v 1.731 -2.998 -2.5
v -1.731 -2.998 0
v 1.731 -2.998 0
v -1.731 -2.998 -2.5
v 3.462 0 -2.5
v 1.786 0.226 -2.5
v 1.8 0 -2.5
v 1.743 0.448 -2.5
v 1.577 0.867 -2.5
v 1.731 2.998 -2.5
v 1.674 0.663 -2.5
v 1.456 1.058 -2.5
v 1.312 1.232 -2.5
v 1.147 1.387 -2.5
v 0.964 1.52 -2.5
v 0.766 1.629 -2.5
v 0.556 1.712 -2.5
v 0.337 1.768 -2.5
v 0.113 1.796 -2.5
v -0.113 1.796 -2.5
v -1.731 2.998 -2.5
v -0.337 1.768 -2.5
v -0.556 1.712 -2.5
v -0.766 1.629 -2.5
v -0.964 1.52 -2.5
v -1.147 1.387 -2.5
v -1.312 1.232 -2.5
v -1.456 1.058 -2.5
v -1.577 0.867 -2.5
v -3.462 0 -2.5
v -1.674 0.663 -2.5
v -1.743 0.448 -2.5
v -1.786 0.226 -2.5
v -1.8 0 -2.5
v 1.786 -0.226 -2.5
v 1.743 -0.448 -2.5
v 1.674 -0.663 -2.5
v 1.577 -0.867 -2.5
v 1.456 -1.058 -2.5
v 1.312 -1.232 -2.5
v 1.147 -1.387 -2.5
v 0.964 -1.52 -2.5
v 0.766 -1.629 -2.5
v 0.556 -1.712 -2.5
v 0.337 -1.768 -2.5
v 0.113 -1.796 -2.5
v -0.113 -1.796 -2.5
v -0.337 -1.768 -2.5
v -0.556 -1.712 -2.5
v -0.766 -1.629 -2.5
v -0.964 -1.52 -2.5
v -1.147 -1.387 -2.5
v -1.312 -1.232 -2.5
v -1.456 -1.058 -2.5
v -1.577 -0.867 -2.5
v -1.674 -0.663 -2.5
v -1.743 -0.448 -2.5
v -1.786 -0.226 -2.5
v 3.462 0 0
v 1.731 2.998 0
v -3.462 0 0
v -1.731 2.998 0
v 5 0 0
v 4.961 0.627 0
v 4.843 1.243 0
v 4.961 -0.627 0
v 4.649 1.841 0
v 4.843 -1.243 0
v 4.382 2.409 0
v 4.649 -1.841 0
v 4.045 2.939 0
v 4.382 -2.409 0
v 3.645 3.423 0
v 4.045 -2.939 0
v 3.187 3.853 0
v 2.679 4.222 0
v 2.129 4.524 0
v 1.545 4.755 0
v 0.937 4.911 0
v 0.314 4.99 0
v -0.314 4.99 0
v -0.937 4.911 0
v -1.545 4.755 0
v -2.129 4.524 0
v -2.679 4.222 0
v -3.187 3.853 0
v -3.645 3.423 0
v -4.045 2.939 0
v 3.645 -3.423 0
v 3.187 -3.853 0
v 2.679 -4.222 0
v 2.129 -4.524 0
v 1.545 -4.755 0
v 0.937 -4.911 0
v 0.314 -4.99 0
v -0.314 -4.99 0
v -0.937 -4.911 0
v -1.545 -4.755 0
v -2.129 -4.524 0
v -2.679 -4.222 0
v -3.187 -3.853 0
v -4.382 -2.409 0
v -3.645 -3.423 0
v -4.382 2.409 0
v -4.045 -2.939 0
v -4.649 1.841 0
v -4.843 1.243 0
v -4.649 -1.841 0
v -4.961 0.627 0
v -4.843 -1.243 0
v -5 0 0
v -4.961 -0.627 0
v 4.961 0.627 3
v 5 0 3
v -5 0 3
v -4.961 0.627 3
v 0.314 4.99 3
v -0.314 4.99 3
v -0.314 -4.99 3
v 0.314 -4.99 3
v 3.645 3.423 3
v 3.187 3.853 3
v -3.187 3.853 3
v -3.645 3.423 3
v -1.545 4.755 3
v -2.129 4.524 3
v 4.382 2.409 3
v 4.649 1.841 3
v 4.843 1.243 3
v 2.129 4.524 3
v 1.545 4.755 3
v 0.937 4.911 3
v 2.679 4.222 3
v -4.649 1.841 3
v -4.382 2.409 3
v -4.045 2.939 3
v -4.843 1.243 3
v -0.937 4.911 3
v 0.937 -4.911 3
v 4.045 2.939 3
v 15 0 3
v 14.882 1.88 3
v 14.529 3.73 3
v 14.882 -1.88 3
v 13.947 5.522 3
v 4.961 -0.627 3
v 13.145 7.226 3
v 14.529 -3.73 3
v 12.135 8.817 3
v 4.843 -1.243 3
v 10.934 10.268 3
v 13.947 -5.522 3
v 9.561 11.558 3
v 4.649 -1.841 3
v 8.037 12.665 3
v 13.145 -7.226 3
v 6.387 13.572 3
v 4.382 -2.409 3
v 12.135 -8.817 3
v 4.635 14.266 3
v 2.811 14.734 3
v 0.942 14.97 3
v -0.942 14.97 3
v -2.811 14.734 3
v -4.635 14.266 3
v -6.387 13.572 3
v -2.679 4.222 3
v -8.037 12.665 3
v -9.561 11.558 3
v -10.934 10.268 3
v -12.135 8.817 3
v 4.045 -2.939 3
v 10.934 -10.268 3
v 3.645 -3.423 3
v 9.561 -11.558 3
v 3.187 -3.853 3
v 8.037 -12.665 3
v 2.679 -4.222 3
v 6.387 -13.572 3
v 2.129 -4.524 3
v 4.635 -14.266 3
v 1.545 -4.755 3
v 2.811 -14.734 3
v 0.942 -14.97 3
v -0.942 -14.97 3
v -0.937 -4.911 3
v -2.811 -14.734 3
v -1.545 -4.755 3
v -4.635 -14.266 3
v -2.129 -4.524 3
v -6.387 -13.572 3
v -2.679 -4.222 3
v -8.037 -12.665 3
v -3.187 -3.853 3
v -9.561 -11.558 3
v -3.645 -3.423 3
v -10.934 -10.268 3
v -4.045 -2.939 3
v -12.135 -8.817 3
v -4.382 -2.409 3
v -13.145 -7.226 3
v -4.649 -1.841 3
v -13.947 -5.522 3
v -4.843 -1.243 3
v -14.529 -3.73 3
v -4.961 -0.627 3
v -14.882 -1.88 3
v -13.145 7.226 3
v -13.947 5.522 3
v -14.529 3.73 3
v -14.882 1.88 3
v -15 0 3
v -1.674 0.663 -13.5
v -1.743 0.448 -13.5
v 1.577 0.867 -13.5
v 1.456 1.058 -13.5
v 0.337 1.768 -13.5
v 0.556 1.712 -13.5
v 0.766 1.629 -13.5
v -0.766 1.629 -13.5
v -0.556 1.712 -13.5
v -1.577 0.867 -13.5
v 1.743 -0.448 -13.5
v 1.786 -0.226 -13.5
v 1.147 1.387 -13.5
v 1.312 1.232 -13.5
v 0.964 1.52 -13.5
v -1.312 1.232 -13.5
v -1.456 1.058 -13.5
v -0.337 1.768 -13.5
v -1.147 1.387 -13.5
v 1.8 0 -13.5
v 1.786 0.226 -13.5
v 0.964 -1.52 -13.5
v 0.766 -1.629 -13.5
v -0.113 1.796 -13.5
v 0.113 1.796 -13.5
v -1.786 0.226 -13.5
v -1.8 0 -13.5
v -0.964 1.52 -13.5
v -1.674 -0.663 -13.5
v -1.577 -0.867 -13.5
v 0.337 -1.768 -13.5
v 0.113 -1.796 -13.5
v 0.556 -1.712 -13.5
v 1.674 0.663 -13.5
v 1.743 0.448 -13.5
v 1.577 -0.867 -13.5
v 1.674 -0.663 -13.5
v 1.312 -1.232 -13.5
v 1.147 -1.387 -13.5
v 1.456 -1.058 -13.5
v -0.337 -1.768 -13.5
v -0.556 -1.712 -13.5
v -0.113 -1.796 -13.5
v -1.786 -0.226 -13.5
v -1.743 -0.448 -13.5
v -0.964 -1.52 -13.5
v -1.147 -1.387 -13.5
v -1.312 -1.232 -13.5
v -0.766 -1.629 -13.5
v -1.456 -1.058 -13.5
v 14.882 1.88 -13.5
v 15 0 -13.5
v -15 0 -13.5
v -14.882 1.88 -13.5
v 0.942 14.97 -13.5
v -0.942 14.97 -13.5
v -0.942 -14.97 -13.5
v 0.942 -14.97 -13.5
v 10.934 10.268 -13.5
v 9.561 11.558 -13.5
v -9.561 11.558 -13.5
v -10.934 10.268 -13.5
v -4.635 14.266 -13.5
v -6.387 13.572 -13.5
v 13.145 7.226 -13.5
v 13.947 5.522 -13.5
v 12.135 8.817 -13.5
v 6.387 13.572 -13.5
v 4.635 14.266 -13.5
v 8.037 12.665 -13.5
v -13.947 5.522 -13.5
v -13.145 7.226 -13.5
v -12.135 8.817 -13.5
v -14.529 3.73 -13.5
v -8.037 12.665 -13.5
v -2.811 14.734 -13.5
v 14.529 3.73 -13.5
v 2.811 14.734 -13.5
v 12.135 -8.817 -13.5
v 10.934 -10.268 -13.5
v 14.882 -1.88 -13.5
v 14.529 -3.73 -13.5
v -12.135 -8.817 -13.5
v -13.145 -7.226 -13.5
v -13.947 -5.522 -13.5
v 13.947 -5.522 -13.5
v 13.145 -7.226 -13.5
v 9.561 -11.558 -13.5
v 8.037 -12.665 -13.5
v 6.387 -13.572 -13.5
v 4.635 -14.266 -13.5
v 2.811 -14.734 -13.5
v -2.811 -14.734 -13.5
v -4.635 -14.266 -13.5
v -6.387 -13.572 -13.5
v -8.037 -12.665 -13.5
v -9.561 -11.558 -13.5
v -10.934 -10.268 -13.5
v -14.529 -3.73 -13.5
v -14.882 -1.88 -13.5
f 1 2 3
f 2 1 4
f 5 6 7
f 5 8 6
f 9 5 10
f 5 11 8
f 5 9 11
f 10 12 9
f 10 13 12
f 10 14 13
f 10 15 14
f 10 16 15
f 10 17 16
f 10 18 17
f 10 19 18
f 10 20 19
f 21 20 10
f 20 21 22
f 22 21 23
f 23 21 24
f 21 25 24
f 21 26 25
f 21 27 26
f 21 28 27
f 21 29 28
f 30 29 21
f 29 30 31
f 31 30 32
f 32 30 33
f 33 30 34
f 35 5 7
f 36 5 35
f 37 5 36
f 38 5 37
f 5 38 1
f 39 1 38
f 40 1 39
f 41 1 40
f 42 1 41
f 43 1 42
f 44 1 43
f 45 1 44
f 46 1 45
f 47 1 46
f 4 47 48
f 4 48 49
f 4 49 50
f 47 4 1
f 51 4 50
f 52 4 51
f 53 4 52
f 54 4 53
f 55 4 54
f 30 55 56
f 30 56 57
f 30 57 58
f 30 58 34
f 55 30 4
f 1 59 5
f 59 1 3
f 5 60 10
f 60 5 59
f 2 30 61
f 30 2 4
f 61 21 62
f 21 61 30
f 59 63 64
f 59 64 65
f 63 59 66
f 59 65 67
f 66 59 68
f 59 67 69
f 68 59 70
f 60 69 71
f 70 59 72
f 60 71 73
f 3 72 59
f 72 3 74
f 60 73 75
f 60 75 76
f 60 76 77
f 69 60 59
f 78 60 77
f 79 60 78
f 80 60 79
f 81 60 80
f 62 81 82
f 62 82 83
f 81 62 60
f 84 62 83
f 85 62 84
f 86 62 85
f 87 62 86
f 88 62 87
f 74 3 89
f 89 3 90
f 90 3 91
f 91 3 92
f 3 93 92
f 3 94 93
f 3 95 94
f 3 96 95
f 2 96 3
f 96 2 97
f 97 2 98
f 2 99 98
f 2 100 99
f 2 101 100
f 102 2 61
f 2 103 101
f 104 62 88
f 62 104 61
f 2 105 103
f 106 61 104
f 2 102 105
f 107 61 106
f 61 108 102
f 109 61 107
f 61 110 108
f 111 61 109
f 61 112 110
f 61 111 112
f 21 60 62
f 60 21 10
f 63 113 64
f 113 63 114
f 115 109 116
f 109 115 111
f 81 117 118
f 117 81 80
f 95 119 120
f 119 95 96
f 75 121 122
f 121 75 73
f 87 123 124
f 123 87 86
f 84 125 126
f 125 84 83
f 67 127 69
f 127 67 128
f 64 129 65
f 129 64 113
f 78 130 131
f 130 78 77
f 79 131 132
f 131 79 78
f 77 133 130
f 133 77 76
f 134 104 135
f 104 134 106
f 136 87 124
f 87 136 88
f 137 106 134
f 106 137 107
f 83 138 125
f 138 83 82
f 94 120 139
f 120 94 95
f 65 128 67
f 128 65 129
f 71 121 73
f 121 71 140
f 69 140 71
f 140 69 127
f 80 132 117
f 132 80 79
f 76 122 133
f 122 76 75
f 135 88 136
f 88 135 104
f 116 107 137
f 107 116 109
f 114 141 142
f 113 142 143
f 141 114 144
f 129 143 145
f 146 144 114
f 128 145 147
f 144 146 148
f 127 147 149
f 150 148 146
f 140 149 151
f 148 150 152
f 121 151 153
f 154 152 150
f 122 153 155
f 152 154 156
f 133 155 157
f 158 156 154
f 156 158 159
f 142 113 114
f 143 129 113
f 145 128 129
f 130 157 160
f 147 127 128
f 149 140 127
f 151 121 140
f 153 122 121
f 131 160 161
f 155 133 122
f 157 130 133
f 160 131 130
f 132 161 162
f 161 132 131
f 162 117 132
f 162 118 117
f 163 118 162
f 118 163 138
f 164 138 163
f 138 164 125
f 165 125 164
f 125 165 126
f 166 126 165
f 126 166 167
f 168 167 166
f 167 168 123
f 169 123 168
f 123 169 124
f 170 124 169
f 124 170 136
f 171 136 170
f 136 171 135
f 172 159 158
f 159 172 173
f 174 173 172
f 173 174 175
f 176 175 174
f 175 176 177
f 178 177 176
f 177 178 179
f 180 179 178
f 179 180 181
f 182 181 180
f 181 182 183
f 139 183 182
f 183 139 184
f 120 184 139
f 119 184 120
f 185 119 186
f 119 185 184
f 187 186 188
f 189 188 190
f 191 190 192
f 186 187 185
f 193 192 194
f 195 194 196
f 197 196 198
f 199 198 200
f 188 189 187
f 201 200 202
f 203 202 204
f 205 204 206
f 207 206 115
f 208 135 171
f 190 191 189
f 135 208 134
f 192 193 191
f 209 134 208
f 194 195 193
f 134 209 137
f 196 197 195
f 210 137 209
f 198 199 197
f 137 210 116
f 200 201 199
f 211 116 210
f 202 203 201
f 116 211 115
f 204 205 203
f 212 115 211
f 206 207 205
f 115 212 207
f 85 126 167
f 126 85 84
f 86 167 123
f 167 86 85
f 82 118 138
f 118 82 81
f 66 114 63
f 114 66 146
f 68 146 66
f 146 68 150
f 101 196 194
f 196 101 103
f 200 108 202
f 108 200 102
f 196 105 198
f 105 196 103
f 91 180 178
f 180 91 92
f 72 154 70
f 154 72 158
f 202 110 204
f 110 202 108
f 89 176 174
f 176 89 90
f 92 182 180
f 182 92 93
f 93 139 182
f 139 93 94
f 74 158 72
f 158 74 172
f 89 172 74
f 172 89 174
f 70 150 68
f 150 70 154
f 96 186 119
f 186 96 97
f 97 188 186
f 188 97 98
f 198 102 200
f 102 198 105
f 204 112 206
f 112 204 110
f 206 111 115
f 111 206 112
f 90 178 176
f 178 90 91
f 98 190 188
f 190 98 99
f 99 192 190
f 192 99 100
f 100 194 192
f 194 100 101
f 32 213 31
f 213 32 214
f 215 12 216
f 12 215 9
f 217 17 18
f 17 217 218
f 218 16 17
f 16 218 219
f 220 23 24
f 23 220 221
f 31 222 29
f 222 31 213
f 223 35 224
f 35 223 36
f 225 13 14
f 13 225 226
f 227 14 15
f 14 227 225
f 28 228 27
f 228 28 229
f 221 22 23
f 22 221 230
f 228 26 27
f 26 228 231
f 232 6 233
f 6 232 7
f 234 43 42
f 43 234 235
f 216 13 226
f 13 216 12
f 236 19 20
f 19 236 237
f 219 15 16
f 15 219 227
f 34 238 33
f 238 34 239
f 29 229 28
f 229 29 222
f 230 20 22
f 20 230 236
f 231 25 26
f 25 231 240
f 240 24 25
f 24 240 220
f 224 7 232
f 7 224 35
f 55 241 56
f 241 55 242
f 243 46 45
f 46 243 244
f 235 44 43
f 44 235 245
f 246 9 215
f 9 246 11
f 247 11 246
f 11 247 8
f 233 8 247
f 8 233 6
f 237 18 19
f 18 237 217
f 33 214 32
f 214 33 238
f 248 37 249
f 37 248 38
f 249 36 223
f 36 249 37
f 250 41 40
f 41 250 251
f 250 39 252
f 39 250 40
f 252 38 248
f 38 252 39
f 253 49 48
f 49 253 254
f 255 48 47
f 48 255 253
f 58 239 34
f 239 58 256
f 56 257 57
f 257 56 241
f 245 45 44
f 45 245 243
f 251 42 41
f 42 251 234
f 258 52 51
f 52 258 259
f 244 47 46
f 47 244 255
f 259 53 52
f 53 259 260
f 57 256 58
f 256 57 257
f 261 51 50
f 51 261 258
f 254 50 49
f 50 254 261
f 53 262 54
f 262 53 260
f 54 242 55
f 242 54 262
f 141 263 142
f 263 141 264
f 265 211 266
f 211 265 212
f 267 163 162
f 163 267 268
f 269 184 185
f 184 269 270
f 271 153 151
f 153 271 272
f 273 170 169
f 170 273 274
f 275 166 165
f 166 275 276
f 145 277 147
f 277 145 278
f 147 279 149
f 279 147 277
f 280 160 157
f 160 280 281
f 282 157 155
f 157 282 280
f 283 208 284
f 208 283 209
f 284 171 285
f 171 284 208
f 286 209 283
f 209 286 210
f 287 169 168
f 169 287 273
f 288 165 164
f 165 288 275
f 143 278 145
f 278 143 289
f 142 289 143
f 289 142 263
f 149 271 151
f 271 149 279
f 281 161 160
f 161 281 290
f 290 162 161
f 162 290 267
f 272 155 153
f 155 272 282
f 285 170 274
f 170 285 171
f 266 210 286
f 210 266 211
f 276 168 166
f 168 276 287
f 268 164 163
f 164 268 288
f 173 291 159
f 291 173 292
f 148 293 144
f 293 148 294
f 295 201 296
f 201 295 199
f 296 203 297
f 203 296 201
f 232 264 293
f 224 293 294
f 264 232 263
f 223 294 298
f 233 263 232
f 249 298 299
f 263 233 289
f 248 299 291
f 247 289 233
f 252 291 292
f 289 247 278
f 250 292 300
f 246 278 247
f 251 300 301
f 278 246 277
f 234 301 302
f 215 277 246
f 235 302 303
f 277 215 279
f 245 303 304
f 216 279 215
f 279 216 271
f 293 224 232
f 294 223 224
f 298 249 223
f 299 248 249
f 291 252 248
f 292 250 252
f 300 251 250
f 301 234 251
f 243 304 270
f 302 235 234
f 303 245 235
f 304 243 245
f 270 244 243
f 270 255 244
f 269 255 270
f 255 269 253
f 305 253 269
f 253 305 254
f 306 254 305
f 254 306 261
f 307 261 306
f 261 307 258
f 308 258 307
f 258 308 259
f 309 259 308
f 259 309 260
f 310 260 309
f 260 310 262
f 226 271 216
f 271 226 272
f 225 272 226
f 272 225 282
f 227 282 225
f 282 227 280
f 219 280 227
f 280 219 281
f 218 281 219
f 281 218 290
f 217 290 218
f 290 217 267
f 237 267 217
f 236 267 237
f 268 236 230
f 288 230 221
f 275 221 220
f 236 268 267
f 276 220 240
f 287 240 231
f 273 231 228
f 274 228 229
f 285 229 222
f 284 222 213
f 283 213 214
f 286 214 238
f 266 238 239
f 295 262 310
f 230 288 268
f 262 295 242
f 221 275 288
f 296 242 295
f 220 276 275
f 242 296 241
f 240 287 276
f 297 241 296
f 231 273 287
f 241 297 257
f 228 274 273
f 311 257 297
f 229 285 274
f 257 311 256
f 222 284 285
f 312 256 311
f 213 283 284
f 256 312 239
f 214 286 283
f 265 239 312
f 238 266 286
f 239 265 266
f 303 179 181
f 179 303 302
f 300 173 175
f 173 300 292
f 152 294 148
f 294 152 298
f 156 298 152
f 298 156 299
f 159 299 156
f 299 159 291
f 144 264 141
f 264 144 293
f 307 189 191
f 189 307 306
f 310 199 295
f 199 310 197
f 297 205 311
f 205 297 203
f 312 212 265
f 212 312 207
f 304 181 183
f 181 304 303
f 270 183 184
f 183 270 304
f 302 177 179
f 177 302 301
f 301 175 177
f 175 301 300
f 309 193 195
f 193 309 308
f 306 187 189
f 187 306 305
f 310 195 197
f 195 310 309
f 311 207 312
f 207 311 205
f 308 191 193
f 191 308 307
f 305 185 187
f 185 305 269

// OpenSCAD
$fn = 50;


difference() {
	union() {
		translate(v = [0, 0, -13.5000000000]) {
			cylinder(h = 16.5000000000, r = 15.0000000000);
		}
	}
	union() {
		translate(v = [0, 0, 0]) {
			rotate(a = [0, 0, 0]) {
				difference() {
					union() {
						translate(v = [0, 0, -2.5000000000]) {
							linear_extrude(height = 2.5000000000) {
								polygon(points = [[3.4620000000, 0.0000000000], [1.7310000000, 2.9981799479], [-1.7310000000, 2.9981799479], [-3.4620000000, 0.0000000000], [-1.7310000000, -2.9981799479], [1.7310000000, -2.9981799479]]);
							}
						}
					}
					union();
				}
			}
		}
		#cylinder(h = 3, r = 5.0000000000);
		#translate(v = [0, 0, -100.0000000000]) {
			cylinder(h = 200, r = 1.8000000000);
		}
	}
}
